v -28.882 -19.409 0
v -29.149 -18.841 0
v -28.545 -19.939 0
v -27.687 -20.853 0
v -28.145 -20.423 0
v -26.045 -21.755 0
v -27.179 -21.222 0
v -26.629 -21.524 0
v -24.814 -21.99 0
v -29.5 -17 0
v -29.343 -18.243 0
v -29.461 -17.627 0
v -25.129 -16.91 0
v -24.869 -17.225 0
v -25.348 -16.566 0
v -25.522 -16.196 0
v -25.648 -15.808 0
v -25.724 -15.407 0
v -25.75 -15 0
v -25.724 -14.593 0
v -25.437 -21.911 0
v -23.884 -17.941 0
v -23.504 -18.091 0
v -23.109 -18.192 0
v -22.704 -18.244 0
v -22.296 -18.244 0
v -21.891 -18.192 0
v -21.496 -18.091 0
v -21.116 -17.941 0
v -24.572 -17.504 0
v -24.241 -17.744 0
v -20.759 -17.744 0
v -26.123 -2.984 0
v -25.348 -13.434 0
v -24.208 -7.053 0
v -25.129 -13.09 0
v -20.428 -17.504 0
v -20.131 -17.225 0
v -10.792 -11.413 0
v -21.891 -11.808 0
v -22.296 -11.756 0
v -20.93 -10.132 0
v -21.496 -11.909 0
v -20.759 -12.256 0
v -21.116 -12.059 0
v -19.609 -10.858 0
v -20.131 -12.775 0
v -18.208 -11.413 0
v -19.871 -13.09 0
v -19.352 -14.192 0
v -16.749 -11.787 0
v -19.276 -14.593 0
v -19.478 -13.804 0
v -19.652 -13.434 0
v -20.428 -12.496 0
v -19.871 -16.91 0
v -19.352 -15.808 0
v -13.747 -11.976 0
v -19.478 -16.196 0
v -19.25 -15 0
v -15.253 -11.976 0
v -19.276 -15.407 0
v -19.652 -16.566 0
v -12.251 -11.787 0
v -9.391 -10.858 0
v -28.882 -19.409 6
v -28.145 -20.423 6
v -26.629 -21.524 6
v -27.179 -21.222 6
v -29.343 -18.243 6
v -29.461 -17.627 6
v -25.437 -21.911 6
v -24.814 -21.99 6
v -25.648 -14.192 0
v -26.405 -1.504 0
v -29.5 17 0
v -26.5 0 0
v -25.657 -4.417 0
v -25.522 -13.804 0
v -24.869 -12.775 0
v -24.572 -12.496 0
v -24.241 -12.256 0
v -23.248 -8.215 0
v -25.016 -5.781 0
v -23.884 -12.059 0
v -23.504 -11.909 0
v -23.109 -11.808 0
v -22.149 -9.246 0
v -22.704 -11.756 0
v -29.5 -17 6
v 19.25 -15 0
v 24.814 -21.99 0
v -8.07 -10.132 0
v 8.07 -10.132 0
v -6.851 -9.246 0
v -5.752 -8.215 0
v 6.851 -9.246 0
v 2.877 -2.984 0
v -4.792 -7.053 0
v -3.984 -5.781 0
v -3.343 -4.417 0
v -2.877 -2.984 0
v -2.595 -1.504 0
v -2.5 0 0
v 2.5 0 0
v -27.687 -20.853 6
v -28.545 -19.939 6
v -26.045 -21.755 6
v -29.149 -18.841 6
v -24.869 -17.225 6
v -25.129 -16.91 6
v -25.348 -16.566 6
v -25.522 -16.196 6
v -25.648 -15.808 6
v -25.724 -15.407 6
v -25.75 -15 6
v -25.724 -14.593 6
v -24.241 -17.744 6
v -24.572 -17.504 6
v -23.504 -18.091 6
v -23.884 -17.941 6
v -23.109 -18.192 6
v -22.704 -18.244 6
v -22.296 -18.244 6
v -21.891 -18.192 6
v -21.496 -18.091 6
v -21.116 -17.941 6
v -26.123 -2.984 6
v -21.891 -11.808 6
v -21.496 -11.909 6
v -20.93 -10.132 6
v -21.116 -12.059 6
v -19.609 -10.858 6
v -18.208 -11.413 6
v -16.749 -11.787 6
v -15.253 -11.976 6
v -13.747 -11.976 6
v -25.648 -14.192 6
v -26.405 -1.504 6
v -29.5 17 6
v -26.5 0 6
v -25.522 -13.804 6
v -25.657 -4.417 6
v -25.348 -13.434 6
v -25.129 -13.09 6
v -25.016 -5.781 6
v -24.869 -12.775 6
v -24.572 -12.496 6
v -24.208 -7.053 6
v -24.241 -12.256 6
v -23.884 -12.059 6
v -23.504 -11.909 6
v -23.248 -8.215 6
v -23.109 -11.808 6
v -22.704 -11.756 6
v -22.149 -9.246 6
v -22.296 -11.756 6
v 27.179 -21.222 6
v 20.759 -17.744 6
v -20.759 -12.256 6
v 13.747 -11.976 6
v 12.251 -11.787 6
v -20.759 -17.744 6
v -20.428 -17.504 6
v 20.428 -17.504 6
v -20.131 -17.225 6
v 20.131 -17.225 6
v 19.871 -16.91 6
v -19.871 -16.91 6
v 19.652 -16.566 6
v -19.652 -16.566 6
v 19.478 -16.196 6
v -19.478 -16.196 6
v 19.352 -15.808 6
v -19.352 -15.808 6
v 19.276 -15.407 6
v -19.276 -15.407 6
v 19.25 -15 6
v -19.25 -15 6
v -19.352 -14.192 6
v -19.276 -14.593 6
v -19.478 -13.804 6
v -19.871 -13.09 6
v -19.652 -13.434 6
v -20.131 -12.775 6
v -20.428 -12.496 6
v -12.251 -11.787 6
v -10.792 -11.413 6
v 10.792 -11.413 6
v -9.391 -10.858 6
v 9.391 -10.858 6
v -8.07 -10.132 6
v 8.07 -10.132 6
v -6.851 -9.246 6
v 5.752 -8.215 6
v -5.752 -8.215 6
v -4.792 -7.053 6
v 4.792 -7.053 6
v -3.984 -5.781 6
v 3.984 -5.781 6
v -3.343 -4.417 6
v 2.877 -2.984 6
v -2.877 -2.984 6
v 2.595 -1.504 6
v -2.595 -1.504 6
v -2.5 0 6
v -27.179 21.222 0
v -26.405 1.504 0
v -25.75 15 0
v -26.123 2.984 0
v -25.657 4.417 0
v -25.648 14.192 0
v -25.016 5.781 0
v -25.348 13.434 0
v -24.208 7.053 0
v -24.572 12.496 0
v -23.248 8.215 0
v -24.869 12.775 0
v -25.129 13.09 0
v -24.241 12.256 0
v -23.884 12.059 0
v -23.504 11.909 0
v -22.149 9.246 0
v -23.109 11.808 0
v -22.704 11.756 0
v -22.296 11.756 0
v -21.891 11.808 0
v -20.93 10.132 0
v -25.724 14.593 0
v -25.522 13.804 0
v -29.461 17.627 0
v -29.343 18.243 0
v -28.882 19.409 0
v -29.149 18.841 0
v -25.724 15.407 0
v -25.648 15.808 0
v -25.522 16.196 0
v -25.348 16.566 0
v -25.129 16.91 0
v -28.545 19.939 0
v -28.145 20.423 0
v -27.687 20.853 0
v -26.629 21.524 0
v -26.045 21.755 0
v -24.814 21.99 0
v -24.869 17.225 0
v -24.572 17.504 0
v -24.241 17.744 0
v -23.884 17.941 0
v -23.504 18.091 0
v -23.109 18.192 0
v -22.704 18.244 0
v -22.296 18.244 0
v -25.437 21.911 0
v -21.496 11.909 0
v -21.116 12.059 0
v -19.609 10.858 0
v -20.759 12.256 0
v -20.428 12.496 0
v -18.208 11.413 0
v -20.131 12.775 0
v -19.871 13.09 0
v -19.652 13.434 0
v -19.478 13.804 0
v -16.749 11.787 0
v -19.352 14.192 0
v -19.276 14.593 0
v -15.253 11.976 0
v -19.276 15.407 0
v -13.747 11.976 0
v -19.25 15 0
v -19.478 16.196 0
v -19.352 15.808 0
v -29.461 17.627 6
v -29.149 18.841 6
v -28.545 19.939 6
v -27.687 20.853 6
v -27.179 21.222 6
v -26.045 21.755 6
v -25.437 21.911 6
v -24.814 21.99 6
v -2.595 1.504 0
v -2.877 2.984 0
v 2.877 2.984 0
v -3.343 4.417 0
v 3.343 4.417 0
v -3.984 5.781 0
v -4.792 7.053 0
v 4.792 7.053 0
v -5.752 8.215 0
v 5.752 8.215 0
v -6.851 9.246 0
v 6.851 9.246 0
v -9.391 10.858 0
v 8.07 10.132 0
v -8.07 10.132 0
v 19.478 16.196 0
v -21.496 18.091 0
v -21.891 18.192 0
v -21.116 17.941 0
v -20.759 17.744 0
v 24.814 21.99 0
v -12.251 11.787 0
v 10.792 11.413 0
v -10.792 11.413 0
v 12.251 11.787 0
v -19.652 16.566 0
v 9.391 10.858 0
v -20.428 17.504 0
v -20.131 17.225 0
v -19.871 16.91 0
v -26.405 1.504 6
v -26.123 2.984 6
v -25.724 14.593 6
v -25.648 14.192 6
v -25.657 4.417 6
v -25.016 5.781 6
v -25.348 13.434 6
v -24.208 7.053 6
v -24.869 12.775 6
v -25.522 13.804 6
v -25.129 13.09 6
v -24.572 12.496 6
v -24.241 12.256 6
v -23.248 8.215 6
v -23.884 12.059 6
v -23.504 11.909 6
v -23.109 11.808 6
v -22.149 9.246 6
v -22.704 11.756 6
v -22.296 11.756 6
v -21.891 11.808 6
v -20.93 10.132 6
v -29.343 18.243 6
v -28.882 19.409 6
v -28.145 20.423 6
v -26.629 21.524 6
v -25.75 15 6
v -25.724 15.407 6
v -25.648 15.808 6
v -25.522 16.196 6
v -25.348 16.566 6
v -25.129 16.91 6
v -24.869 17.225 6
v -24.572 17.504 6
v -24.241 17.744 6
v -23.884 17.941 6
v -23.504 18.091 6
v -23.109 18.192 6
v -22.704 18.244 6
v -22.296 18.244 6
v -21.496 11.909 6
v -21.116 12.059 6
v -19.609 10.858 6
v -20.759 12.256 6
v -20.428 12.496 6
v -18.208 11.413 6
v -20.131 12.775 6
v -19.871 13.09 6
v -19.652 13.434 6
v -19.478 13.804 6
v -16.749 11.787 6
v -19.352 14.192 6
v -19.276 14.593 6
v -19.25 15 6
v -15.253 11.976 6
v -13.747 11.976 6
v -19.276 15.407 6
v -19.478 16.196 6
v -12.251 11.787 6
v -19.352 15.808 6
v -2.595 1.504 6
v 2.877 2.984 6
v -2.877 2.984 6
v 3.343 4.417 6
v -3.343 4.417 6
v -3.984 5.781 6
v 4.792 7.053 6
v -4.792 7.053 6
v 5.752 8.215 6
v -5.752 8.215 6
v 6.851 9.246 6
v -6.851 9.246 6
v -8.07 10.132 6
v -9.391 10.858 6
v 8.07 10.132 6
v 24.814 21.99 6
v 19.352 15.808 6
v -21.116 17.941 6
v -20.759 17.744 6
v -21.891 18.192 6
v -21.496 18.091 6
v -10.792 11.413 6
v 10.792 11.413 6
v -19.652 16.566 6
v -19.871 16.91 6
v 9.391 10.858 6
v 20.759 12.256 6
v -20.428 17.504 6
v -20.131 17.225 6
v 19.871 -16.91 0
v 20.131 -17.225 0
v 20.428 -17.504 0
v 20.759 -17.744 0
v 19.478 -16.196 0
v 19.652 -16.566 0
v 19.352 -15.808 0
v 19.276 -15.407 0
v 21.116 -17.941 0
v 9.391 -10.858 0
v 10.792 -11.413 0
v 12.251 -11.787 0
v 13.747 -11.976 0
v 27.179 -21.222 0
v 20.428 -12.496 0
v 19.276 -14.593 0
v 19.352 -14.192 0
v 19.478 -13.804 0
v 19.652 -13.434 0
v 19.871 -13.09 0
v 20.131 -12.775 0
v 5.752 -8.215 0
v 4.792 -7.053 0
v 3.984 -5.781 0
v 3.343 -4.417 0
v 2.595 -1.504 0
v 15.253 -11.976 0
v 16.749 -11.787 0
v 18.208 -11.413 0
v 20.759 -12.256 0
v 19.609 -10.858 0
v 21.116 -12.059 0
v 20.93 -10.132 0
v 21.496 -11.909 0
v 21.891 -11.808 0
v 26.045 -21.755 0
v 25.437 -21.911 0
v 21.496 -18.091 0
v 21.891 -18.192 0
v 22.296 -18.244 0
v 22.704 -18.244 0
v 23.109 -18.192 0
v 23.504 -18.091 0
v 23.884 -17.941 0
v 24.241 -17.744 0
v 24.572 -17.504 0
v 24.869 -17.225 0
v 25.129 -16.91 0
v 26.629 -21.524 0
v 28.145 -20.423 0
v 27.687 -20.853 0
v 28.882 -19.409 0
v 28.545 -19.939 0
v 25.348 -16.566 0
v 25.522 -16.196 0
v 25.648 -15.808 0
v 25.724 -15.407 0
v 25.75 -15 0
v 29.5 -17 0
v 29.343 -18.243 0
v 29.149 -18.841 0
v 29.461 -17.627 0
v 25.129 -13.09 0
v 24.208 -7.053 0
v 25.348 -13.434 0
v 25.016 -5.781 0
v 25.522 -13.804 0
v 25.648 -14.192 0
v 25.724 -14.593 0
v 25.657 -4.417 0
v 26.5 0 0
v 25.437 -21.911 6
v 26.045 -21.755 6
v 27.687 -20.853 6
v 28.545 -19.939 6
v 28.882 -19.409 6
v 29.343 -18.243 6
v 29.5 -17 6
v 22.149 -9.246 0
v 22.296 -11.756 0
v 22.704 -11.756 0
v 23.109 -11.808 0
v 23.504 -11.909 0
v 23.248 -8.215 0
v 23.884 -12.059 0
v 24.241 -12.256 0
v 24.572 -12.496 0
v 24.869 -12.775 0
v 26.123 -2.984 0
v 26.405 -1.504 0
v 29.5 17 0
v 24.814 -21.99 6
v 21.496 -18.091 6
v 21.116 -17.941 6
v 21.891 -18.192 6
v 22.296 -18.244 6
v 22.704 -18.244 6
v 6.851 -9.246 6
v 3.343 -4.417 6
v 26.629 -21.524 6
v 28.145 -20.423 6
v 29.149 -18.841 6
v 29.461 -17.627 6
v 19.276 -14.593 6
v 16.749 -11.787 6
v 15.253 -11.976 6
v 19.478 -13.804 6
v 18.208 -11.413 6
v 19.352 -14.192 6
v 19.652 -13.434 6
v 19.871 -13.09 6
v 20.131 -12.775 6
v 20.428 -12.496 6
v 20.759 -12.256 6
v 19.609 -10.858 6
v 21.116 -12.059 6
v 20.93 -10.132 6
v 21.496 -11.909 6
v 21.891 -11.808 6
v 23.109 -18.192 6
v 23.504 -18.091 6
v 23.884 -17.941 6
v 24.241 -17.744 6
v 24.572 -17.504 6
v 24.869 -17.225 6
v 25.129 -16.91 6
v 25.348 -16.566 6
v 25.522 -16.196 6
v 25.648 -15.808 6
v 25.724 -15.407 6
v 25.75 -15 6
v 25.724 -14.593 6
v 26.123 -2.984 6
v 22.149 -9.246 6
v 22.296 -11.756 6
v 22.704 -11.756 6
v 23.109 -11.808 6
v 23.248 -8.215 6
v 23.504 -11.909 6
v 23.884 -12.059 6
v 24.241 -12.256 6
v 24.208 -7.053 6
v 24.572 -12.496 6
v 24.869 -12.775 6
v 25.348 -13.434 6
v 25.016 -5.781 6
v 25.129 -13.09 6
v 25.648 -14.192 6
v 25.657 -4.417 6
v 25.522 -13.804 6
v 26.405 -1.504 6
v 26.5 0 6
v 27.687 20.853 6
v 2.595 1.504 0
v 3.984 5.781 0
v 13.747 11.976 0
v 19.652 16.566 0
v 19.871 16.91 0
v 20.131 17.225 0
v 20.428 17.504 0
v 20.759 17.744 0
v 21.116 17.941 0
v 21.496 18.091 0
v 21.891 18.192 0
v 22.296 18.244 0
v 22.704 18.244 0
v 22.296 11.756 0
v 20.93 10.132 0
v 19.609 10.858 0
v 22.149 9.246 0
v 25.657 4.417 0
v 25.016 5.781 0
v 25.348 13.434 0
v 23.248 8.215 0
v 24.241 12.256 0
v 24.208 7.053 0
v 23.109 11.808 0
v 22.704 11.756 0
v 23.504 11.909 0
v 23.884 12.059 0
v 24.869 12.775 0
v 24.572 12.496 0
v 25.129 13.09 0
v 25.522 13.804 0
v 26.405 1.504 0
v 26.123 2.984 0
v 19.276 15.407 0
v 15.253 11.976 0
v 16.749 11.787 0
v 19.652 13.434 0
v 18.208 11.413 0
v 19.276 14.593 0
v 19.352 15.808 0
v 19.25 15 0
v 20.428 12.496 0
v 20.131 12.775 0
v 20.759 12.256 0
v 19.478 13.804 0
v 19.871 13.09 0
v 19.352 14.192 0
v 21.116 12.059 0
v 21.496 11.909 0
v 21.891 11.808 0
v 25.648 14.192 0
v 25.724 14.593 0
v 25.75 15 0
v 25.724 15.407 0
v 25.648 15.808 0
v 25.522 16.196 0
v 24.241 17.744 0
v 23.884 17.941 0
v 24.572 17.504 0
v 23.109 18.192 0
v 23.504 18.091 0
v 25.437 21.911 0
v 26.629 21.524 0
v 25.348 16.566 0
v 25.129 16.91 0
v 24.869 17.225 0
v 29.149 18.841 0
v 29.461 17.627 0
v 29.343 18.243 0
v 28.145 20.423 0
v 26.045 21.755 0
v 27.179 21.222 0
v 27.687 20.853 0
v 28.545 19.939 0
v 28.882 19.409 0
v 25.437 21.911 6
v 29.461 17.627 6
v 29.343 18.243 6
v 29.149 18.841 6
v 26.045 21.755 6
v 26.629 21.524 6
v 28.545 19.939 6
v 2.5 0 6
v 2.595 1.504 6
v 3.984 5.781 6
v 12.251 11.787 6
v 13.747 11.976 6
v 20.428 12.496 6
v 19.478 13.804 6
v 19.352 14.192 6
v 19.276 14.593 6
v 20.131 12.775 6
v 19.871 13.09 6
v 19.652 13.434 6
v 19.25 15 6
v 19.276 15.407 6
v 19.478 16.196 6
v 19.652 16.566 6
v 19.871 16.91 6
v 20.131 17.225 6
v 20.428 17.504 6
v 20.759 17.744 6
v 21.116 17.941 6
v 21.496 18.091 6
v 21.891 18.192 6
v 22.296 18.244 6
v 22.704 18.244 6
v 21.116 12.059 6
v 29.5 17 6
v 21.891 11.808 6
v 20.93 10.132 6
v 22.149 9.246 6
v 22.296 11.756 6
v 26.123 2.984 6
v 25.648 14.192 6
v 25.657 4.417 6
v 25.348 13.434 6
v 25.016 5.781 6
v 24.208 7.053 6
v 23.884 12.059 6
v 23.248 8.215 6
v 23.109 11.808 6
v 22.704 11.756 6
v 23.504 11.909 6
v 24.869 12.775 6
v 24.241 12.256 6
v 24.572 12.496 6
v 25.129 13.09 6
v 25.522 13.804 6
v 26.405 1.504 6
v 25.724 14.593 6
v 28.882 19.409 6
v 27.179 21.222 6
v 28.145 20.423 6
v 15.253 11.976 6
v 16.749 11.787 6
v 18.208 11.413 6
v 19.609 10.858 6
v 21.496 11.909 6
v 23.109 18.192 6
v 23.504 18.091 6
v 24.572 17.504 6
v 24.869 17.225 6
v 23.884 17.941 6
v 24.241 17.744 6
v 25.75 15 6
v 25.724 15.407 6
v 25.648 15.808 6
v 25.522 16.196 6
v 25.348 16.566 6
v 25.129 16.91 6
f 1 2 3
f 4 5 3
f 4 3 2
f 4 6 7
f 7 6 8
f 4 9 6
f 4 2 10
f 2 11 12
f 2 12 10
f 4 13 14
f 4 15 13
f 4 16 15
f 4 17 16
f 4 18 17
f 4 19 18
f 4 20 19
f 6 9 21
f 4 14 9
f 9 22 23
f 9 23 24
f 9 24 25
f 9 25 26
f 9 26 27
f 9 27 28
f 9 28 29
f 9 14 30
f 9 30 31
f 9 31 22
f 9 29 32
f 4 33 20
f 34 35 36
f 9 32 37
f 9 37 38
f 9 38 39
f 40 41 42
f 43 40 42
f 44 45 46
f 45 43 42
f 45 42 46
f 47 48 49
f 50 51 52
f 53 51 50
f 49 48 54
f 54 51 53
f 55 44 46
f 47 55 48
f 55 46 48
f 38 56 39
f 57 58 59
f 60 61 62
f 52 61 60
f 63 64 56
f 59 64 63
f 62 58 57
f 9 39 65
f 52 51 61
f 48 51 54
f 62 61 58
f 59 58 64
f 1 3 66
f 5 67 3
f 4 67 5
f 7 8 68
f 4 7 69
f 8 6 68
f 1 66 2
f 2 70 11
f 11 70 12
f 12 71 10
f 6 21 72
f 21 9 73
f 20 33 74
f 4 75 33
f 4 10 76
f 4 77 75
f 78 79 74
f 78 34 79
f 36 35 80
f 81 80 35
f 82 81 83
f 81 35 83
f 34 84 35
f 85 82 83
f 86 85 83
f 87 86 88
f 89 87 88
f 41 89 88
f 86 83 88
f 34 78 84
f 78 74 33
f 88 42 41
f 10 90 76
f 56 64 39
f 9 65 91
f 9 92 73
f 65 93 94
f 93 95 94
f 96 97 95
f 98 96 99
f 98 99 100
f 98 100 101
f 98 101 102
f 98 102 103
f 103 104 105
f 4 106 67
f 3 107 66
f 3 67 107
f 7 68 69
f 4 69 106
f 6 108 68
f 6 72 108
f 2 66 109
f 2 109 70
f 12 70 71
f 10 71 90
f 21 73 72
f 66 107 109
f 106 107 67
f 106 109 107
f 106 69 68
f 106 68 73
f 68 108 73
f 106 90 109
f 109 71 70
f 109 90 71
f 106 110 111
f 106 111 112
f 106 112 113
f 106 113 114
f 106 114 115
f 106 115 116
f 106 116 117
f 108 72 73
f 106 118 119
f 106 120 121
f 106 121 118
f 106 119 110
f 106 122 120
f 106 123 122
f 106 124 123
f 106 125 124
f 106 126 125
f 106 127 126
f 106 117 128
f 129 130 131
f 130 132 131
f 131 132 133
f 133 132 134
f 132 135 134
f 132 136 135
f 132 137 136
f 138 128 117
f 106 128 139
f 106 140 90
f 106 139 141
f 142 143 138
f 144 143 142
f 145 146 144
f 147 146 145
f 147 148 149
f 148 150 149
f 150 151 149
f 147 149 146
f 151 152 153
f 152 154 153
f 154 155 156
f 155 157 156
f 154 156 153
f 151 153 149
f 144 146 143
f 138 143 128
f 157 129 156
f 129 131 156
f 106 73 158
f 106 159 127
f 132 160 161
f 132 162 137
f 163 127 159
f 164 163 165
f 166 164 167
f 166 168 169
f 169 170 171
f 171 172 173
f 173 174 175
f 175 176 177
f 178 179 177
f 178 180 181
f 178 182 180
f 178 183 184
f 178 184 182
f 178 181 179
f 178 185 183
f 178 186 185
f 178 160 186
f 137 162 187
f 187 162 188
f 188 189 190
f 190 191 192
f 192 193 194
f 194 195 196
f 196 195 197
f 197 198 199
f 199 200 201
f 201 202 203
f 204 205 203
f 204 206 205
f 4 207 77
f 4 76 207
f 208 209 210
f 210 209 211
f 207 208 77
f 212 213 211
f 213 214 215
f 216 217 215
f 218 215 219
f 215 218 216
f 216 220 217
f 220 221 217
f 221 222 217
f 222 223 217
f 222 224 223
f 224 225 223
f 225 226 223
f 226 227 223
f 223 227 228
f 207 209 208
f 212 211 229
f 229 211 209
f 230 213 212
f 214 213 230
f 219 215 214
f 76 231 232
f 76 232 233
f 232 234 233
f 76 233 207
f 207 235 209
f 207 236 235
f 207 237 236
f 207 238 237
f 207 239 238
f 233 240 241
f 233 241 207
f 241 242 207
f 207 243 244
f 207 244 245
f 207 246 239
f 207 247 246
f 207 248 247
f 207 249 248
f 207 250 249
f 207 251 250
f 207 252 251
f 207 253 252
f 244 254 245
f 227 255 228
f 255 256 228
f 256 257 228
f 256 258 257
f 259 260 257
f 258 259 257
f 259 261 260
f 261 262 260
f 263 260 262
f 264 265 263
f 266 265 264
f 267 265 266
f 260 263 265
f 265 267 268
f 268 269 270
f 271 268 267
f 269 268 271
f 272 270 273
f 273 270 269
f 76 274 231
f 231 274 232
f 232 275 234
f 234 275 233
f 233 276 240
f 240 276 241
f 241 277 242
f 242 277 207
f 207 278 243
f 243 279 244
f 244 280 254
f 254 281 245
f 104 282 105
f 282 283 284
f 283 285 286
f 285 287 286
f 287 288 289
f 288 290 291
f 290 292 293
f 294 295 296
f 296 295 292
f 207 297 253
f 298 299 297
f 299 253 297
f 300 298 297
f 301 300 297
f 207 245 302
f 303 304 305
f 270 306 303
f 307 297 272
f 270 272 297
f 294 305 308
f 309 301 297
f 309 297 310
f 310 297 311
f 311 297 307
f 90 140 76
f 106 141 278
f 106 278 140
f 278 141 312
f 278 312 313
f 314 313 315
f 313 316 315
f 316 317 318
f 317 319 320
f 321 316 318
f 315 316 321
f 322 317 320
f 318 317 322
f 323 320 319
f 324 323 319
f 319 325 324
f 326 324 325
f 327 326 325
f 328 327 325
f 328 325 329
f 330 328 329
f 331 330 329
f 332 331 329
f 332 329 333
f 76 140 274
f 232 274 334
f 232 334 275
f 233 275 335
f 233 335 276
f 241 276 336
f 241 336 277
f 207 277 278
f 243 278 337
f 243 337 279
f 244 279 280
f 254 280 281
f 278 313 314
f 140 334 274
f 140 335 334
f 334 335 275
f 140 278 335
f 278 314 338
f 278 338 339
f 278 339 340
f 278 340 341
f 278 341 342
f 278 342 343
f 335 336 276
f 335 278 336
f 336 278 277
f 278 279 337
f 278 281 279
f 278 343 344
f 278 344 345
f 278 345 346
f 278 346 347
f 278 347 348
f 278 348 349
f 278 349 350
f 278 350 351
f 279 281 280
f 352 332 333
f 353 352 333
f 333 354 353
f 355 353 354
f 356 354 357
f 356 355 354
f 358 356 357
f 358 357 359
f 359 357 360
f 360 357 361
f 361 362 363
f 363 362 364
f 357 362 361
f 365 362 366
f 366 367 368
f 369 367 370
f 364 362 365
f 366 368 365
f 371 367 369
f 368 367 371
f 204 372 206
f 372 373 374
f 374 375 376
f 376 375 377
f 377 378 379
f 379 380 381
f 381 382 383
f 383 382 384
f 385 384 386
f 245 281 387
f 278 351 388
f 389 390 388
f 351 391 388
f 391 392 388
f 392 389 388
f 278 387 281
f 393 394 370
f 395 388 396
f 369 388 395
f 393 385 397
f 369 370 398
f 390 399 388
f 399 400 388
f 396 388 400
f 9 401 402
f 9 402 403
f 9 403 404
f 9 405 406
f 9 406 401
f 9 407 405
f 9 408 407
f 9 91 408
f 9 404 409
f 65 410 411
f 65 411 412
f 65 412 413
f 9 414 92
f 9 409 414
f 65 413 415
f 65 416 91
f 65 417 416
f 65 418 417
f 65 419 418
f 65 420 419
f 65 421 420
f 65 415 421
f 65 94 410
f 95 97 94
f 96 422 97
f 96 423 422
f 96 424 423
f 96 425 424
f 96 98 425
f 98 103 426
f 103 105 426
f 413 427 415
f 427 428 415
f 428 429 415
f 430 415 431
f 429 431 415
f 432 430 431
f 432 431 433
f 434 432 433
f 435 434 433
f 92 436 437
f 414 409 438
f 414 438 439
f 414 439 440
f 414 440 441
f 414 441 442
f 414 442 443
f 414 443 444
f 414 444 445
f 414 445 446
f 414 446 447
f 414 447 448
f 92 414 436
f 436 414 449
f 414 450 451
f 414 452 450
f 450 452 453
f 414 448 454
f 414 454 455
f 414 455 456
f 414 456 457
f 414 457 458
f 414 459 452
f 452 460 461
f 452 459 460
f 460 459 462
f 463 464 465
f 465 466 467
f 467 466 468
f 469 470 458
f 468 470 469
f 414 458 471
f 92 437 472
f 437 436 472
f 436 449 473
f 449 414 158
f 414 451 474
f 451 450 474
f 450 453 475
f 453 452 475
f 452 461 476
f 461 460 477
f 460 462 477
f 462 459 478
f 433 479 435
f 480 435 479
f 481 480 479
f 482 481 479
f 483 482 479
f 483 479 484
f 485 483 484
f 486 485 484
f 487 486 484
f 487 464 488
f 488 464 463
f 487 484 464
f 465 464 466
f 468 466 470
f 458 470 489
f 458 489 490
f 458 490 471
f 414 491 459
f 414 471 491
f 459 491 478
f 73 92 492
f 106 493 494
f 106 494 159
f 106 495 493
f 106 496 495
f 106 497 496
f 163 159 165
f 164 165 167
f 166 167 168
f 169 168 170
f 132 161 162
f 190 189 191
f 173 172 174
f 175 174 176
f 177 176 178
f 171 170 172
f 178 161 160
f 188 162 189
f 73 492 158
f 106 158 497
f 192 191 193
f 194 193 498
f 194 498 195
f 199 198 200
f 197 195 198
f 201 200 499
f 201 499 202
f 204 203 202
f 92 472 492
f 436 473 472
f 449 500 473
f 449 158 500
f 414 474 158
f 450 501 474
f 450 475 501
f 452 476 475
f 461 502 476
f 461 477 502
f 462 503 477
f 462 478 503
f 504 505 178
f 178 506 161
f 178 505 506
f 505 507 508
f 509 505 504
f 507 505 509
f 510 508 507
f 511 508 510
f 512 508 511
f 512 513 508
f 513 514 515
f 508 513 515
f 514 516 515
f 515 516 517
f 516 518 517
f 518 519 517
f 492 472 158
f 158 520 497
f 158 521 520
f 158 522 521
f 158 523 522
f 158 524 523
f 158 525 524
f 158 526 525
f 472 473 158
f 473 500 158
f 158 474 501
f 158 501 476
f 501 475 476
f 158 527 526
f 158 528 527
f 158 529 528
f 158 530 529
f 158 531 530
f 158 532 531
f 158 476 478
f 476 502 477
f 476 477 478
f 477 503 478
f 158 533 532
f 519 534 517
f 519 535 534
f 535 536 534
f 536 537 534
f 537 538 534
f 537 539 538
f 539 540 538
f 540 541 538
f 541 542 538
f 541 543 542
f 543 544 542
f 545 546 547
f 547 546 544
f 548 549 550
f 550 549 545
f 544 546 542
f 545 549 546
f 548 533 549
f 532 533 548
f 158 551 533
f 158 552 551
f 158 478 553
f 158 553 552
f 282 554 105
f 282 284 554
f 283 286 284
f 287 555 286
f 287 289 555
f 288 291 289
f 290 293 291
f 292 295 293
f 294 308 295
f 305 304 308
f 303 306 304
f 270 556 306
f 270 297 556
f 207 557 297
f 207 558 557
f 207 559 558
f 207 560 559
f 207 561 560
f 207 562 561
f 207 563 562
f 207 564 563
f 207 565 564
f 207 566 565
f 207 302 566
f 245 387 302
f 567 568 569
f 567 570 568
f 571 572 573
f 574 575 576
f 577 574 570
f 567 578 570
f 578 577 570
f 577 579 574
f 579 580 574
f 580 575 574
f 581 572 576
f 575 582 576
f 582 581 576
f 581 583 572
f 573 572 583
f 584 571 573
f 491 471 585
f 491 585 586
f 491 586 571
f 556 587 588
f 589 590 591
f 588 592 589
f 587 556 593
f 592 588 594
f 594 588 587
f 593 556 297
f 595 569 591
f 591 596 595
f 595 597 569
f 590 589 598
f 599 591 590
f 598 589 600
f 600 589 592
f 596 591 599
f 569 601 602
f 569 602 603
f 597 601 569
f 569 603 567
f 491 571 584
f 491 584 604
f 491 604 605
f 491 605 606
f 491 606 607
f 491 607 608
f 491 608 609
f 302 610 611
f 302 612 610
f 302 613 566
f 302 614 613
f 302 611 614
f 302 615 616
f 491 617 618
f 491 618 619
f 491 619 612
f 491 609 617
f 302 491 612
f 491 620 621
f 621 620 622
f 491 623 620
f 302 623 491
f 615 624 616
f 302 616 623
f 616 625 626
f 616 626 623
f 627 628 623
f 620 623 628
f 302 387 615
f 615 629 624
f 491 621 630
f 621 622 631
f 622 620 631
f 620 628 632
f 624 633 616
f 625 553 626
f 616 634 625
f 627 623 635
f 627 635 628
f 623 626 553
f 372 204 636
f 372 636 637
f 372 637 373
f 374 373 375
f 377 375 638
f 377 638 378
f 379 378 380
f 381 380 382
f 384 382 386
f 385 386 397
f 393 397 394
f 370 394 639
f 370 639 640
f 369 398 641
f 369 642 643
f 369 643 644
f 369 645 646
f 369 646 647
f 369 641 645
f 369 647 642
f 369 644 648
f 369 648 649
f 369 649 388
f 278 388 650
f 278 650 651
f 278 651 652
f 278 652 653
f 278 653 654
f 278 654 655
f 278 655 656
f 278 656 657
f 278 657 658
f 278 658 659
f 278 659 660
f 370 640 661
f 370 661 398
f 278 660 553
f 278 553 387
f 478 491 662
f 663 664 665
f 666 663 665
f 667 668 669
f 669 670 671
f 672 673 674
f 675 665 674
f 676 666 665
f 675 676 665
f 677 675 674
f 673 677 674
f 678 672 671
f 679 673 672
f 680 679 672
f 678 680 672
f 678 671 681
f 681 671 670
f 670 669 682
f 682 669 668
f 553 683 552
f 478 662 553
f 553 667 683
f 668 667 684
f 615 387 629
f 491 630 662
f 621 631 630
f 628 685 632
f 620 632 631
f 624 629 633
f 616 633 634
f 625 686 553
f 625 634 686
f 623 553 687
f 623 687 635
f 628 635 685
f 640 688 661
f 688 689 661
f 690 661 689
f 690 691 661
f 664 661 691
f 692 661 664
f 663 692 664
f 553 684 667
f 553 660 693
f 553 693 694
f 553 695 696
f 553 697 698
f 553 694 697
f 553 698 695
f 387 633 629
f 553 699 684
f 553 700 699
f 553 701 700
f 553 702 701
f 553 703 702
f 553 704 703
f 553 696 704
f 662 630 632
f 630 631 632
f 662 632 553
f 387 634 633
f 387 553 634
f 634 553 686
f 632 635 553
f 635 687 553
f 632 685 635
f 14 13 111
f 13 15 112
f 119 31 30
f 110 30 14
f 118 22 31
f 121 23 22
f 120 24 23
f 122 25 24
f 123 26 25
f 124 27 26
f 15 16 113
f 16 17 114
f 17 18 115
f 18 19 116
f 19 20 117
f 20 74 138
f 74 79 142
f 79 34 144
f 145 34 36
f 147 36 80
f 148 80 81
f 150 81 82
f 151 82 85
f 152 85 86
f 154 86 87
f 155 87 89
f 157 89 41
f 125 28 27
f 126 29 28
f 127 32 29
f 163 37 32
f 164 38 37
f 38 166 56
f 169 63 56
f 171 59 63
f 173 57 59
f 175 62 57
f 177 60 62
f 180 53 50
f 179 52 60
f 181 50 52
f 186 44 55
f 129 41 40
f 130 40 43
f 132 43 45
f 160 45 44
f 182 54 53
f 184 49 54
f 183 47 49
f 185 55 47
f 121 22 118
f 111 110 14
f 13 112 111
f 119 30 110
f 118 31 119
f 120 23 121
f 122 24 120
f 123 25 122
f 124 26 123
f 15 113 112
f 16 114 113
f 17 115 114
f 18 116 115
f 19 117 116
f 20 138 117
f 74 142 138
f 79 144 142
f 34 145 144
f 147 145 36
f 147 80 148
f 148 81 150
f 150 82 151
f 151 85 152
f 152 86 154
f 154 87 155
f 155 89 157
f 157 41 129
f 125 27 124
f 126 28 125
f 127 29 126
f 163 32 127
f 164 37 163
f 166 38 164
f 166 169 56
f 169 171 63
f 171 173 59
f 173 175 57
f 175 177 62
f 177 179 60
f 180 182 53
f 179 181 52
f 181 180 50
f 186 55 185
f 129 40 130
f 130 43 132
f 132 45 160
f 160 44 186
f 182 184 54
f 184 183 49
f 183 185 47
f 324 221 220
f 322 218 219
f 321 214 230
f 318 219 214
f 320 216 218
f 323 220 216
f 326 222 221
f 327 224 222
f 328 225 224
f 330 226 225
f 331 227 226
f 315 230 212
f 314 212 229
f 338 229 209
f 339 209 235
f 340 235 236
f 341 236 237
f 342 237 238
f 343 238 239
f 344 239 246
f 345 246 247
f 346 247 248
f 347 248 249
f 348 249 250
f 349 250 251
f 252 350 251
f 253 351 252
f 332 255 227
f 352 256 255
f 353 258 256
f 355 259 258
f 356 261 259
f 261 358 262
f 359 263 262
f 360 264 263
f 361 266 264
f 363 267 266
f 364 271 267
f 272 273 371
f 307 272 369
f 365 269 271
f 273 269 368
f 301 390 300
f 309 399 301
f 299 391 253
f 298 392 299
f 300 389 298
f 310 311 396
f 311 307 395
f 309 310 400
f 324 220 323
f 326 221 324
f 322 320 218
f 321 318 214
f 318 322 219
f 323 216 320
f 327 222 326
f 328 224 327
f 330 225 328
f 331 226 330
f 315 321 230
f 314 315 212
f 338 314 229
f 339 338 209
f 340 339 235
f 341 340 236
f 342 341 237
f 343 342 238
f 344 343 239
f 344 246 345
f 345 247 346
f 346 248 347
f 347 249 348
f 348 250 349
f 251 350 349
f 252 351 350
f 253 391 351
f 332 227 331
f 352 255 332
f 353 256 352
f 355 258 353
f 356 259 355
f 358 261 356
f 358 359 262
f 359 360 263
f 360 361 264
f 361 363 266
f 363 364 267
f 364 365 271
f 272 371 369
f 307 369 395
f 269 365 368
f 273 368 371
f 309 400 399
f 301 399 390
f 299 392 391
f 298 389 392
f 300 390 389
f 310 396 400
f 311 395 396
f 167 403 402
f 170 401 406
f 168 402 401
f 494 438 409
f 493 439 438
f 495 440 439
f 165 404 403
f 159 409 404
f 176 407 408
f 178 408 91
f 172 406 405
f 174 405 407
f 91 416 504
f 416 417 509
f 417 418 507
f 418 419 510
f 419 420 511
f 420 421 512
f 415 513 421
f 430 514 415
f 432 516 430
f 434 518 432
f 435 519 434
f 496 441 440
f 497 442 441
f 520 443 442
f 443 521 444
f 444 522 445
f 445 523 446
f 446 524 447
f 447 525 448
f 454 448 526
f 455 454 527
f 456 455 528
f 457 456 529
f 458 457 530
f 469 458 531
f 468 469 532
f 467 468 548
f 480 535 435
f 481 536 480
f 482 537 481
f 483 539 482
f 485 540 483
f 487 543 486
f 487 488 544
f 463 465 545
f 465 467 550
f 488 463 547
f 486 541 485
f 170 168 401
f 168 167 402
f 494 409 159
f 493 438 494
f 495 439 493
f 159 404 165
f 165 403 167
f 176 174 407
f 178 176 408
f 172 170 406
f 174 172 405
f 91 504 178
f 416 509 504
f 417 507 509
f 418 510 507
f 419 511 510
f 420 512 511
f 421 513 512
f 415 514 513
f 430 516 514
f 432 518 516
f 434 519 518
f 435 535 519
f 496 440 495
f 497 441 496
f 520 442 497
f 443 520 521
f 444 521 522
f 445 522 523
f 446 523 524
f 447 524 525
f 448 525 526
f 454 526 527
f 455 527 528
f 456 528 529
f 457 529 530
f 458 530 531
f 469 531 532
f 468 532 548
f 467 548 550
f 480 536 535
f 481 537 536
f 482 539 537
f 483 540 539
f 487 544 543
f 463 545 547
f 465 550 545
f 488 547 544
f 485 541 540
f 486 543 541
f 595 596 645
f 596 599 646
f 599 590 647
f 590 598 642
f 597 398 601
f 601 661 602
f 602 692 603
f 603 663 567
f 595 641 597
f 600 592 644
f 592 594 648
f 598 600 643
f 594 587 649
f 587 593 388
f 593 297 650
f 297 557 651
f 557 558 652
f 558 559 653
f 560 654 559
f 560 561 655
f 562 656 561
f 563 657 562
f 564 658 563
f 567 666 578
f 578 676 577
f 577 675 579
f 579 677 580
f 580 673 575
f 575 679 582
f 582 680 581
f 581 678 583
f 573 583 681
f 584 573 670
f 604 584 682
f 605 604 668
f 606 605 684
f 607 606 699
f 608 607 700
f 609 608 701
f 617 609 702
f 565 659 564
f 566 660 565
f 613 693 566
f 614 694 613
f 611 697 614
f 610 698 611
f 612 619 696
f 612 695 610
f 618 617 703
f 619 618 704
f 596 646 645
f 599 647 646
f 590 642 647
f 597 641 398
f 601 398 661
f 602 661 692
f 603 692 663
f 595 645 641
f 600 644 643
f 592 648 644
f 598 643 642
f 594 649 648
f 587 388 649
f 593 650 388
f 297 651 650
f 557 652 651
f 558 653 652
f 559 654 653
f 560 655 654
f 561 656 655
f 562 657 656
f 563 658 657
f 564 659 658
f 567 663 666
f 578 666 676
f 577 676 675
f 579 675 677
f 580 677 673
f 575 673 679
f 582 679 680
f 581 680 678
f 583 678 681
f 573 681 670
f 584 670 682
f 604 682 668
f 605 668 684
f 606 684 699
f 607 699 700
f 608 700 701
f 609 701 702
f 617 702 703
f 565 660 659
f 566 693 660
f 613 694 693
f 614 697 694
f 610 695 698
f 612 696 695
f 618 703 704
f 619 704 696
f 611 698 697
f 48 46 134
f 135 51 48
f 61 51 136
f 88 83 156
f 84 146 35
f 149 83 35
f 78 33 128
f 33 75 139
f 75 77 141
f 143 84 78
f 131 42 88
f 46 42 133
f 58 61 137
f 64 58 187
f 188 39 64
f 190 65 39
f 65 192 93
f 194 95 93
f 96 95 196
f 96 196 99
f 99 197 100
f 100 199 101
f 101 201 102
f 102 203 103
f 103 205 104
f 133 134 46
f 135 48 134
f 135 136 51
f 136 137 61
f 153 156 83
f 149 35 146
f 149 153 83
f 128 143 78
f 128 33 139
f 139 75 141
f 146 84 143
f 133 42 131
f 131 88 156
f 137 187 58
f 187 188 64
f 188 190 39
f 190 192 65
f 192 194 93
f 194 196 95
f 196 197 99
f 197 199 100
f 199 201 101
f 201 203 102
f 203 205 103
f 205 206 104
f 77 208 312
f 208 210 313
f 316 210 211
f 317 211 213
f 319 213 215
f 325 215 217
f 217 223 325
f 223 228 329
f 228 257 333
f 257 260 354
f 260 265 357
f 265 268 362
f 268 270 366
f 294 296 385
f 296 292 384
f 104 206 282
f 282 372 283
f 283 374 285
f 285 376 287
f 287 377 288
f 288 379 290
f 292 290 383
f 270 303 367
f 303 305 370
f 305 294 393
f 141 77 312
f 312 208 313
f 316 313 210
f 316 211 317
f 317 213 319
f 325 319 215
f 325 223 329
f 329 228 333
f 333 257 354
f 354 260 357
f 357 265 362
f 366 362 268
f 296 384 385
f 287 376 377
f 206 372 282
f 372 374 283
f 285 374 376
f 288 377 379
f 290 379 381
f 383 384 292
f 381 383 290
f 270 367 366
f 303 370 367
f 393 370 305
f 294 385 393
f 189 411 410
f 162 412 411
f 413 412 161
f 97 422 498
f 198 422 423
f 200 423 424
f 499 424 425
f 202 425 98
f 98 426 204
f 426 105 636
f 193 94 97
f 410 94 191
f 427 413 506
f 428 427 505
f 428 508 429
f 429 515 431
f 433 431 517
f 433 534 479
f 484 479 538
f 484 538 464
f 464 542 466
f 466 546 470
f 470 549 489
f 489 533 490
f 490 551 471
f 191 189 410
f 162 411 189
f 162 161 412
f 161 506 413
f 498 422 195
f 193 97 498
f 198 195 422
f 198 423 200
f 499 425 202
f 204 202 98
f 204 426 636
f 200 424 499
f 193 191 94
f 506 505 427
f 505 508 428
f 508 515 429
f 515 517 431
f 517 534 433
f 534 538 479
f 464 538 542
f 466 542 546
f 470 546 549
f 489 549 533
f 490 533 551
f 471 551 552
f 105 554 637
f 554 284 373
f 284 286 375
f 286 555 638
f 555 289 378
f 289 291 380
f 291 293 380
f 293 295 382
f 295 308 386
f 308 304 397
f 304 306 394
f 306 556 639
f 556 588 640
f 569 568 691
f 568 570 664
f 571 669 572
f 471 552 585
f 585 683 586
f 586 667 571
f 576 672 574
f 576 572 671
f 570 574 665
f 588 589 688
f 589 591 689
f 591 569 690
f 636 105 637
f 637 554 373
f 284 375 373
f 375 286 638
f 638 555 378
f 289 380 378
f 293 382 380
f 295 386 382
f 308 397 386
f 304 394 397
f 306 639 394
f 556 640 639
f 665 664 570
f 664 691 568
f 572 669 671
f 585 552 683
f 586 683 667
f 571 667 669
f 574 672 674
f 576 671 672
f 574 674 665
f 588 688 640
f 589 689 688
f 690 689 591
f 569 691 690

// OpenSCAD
$fn = 50;

difference() {
	union() {
		hull() {
			translate(v = [-24.5, 17.0, 0]) {
				cylinder(h = 6, r = 5);
			}
			translate(v = [24.5, 17.0, 0]) {
				cylinder(h = 6, r = 5);
			}
			translate(v = [-24.5, -17.0, 0]) {
				cylinder(h = 6, r = 5);
			}
			translate(v = [24.5, -17.0, 0]) {
				cylinder(h = 6, r = 5);
			}
		}
	}
	union() {
		translate(v = [-22.5, -15.0, -100.0]) {
			cylinder(h = 200, r = 3.25);
		}
		translate(v = [-22.5, 15.0, -100.0]) {
			cylinder(h = 200, r = 3.25);
		}
		translate(v = [22.5, -15.0, -100.0]) {
			cylinder(h = 200, r = 3.25);
		}
		translate(v = [22.5, 15.0, -100.0]) {
			cylinder(h = 200, r = 3.25);
		}
		translate(v = [-22.5, -15.0, -100.0]) {
			cylinder(h = 200, r = 1.8);
		}
		translate(v = [-22.5, 15.0, -100.0]) {
			cylinder(h = 200, r = 1.8);
		}
		translate(v = [22.5, -15.0, -100.0]) {
			cylinder(h = 200, r = 1.8);
		}
		translate(v = [22.5, 15.0, -100.0]) {
			cylinder(h = 200, r = 1.8);
		}
		translate(v = [-14.5, 0, 0.0]) {
			cylinder(h = 6, r = 12.0);
		}
		translate(v = [14.5, 0, 0.0]) {
			cylinder(h = 6, r = 12.0);
		}
	}
}
